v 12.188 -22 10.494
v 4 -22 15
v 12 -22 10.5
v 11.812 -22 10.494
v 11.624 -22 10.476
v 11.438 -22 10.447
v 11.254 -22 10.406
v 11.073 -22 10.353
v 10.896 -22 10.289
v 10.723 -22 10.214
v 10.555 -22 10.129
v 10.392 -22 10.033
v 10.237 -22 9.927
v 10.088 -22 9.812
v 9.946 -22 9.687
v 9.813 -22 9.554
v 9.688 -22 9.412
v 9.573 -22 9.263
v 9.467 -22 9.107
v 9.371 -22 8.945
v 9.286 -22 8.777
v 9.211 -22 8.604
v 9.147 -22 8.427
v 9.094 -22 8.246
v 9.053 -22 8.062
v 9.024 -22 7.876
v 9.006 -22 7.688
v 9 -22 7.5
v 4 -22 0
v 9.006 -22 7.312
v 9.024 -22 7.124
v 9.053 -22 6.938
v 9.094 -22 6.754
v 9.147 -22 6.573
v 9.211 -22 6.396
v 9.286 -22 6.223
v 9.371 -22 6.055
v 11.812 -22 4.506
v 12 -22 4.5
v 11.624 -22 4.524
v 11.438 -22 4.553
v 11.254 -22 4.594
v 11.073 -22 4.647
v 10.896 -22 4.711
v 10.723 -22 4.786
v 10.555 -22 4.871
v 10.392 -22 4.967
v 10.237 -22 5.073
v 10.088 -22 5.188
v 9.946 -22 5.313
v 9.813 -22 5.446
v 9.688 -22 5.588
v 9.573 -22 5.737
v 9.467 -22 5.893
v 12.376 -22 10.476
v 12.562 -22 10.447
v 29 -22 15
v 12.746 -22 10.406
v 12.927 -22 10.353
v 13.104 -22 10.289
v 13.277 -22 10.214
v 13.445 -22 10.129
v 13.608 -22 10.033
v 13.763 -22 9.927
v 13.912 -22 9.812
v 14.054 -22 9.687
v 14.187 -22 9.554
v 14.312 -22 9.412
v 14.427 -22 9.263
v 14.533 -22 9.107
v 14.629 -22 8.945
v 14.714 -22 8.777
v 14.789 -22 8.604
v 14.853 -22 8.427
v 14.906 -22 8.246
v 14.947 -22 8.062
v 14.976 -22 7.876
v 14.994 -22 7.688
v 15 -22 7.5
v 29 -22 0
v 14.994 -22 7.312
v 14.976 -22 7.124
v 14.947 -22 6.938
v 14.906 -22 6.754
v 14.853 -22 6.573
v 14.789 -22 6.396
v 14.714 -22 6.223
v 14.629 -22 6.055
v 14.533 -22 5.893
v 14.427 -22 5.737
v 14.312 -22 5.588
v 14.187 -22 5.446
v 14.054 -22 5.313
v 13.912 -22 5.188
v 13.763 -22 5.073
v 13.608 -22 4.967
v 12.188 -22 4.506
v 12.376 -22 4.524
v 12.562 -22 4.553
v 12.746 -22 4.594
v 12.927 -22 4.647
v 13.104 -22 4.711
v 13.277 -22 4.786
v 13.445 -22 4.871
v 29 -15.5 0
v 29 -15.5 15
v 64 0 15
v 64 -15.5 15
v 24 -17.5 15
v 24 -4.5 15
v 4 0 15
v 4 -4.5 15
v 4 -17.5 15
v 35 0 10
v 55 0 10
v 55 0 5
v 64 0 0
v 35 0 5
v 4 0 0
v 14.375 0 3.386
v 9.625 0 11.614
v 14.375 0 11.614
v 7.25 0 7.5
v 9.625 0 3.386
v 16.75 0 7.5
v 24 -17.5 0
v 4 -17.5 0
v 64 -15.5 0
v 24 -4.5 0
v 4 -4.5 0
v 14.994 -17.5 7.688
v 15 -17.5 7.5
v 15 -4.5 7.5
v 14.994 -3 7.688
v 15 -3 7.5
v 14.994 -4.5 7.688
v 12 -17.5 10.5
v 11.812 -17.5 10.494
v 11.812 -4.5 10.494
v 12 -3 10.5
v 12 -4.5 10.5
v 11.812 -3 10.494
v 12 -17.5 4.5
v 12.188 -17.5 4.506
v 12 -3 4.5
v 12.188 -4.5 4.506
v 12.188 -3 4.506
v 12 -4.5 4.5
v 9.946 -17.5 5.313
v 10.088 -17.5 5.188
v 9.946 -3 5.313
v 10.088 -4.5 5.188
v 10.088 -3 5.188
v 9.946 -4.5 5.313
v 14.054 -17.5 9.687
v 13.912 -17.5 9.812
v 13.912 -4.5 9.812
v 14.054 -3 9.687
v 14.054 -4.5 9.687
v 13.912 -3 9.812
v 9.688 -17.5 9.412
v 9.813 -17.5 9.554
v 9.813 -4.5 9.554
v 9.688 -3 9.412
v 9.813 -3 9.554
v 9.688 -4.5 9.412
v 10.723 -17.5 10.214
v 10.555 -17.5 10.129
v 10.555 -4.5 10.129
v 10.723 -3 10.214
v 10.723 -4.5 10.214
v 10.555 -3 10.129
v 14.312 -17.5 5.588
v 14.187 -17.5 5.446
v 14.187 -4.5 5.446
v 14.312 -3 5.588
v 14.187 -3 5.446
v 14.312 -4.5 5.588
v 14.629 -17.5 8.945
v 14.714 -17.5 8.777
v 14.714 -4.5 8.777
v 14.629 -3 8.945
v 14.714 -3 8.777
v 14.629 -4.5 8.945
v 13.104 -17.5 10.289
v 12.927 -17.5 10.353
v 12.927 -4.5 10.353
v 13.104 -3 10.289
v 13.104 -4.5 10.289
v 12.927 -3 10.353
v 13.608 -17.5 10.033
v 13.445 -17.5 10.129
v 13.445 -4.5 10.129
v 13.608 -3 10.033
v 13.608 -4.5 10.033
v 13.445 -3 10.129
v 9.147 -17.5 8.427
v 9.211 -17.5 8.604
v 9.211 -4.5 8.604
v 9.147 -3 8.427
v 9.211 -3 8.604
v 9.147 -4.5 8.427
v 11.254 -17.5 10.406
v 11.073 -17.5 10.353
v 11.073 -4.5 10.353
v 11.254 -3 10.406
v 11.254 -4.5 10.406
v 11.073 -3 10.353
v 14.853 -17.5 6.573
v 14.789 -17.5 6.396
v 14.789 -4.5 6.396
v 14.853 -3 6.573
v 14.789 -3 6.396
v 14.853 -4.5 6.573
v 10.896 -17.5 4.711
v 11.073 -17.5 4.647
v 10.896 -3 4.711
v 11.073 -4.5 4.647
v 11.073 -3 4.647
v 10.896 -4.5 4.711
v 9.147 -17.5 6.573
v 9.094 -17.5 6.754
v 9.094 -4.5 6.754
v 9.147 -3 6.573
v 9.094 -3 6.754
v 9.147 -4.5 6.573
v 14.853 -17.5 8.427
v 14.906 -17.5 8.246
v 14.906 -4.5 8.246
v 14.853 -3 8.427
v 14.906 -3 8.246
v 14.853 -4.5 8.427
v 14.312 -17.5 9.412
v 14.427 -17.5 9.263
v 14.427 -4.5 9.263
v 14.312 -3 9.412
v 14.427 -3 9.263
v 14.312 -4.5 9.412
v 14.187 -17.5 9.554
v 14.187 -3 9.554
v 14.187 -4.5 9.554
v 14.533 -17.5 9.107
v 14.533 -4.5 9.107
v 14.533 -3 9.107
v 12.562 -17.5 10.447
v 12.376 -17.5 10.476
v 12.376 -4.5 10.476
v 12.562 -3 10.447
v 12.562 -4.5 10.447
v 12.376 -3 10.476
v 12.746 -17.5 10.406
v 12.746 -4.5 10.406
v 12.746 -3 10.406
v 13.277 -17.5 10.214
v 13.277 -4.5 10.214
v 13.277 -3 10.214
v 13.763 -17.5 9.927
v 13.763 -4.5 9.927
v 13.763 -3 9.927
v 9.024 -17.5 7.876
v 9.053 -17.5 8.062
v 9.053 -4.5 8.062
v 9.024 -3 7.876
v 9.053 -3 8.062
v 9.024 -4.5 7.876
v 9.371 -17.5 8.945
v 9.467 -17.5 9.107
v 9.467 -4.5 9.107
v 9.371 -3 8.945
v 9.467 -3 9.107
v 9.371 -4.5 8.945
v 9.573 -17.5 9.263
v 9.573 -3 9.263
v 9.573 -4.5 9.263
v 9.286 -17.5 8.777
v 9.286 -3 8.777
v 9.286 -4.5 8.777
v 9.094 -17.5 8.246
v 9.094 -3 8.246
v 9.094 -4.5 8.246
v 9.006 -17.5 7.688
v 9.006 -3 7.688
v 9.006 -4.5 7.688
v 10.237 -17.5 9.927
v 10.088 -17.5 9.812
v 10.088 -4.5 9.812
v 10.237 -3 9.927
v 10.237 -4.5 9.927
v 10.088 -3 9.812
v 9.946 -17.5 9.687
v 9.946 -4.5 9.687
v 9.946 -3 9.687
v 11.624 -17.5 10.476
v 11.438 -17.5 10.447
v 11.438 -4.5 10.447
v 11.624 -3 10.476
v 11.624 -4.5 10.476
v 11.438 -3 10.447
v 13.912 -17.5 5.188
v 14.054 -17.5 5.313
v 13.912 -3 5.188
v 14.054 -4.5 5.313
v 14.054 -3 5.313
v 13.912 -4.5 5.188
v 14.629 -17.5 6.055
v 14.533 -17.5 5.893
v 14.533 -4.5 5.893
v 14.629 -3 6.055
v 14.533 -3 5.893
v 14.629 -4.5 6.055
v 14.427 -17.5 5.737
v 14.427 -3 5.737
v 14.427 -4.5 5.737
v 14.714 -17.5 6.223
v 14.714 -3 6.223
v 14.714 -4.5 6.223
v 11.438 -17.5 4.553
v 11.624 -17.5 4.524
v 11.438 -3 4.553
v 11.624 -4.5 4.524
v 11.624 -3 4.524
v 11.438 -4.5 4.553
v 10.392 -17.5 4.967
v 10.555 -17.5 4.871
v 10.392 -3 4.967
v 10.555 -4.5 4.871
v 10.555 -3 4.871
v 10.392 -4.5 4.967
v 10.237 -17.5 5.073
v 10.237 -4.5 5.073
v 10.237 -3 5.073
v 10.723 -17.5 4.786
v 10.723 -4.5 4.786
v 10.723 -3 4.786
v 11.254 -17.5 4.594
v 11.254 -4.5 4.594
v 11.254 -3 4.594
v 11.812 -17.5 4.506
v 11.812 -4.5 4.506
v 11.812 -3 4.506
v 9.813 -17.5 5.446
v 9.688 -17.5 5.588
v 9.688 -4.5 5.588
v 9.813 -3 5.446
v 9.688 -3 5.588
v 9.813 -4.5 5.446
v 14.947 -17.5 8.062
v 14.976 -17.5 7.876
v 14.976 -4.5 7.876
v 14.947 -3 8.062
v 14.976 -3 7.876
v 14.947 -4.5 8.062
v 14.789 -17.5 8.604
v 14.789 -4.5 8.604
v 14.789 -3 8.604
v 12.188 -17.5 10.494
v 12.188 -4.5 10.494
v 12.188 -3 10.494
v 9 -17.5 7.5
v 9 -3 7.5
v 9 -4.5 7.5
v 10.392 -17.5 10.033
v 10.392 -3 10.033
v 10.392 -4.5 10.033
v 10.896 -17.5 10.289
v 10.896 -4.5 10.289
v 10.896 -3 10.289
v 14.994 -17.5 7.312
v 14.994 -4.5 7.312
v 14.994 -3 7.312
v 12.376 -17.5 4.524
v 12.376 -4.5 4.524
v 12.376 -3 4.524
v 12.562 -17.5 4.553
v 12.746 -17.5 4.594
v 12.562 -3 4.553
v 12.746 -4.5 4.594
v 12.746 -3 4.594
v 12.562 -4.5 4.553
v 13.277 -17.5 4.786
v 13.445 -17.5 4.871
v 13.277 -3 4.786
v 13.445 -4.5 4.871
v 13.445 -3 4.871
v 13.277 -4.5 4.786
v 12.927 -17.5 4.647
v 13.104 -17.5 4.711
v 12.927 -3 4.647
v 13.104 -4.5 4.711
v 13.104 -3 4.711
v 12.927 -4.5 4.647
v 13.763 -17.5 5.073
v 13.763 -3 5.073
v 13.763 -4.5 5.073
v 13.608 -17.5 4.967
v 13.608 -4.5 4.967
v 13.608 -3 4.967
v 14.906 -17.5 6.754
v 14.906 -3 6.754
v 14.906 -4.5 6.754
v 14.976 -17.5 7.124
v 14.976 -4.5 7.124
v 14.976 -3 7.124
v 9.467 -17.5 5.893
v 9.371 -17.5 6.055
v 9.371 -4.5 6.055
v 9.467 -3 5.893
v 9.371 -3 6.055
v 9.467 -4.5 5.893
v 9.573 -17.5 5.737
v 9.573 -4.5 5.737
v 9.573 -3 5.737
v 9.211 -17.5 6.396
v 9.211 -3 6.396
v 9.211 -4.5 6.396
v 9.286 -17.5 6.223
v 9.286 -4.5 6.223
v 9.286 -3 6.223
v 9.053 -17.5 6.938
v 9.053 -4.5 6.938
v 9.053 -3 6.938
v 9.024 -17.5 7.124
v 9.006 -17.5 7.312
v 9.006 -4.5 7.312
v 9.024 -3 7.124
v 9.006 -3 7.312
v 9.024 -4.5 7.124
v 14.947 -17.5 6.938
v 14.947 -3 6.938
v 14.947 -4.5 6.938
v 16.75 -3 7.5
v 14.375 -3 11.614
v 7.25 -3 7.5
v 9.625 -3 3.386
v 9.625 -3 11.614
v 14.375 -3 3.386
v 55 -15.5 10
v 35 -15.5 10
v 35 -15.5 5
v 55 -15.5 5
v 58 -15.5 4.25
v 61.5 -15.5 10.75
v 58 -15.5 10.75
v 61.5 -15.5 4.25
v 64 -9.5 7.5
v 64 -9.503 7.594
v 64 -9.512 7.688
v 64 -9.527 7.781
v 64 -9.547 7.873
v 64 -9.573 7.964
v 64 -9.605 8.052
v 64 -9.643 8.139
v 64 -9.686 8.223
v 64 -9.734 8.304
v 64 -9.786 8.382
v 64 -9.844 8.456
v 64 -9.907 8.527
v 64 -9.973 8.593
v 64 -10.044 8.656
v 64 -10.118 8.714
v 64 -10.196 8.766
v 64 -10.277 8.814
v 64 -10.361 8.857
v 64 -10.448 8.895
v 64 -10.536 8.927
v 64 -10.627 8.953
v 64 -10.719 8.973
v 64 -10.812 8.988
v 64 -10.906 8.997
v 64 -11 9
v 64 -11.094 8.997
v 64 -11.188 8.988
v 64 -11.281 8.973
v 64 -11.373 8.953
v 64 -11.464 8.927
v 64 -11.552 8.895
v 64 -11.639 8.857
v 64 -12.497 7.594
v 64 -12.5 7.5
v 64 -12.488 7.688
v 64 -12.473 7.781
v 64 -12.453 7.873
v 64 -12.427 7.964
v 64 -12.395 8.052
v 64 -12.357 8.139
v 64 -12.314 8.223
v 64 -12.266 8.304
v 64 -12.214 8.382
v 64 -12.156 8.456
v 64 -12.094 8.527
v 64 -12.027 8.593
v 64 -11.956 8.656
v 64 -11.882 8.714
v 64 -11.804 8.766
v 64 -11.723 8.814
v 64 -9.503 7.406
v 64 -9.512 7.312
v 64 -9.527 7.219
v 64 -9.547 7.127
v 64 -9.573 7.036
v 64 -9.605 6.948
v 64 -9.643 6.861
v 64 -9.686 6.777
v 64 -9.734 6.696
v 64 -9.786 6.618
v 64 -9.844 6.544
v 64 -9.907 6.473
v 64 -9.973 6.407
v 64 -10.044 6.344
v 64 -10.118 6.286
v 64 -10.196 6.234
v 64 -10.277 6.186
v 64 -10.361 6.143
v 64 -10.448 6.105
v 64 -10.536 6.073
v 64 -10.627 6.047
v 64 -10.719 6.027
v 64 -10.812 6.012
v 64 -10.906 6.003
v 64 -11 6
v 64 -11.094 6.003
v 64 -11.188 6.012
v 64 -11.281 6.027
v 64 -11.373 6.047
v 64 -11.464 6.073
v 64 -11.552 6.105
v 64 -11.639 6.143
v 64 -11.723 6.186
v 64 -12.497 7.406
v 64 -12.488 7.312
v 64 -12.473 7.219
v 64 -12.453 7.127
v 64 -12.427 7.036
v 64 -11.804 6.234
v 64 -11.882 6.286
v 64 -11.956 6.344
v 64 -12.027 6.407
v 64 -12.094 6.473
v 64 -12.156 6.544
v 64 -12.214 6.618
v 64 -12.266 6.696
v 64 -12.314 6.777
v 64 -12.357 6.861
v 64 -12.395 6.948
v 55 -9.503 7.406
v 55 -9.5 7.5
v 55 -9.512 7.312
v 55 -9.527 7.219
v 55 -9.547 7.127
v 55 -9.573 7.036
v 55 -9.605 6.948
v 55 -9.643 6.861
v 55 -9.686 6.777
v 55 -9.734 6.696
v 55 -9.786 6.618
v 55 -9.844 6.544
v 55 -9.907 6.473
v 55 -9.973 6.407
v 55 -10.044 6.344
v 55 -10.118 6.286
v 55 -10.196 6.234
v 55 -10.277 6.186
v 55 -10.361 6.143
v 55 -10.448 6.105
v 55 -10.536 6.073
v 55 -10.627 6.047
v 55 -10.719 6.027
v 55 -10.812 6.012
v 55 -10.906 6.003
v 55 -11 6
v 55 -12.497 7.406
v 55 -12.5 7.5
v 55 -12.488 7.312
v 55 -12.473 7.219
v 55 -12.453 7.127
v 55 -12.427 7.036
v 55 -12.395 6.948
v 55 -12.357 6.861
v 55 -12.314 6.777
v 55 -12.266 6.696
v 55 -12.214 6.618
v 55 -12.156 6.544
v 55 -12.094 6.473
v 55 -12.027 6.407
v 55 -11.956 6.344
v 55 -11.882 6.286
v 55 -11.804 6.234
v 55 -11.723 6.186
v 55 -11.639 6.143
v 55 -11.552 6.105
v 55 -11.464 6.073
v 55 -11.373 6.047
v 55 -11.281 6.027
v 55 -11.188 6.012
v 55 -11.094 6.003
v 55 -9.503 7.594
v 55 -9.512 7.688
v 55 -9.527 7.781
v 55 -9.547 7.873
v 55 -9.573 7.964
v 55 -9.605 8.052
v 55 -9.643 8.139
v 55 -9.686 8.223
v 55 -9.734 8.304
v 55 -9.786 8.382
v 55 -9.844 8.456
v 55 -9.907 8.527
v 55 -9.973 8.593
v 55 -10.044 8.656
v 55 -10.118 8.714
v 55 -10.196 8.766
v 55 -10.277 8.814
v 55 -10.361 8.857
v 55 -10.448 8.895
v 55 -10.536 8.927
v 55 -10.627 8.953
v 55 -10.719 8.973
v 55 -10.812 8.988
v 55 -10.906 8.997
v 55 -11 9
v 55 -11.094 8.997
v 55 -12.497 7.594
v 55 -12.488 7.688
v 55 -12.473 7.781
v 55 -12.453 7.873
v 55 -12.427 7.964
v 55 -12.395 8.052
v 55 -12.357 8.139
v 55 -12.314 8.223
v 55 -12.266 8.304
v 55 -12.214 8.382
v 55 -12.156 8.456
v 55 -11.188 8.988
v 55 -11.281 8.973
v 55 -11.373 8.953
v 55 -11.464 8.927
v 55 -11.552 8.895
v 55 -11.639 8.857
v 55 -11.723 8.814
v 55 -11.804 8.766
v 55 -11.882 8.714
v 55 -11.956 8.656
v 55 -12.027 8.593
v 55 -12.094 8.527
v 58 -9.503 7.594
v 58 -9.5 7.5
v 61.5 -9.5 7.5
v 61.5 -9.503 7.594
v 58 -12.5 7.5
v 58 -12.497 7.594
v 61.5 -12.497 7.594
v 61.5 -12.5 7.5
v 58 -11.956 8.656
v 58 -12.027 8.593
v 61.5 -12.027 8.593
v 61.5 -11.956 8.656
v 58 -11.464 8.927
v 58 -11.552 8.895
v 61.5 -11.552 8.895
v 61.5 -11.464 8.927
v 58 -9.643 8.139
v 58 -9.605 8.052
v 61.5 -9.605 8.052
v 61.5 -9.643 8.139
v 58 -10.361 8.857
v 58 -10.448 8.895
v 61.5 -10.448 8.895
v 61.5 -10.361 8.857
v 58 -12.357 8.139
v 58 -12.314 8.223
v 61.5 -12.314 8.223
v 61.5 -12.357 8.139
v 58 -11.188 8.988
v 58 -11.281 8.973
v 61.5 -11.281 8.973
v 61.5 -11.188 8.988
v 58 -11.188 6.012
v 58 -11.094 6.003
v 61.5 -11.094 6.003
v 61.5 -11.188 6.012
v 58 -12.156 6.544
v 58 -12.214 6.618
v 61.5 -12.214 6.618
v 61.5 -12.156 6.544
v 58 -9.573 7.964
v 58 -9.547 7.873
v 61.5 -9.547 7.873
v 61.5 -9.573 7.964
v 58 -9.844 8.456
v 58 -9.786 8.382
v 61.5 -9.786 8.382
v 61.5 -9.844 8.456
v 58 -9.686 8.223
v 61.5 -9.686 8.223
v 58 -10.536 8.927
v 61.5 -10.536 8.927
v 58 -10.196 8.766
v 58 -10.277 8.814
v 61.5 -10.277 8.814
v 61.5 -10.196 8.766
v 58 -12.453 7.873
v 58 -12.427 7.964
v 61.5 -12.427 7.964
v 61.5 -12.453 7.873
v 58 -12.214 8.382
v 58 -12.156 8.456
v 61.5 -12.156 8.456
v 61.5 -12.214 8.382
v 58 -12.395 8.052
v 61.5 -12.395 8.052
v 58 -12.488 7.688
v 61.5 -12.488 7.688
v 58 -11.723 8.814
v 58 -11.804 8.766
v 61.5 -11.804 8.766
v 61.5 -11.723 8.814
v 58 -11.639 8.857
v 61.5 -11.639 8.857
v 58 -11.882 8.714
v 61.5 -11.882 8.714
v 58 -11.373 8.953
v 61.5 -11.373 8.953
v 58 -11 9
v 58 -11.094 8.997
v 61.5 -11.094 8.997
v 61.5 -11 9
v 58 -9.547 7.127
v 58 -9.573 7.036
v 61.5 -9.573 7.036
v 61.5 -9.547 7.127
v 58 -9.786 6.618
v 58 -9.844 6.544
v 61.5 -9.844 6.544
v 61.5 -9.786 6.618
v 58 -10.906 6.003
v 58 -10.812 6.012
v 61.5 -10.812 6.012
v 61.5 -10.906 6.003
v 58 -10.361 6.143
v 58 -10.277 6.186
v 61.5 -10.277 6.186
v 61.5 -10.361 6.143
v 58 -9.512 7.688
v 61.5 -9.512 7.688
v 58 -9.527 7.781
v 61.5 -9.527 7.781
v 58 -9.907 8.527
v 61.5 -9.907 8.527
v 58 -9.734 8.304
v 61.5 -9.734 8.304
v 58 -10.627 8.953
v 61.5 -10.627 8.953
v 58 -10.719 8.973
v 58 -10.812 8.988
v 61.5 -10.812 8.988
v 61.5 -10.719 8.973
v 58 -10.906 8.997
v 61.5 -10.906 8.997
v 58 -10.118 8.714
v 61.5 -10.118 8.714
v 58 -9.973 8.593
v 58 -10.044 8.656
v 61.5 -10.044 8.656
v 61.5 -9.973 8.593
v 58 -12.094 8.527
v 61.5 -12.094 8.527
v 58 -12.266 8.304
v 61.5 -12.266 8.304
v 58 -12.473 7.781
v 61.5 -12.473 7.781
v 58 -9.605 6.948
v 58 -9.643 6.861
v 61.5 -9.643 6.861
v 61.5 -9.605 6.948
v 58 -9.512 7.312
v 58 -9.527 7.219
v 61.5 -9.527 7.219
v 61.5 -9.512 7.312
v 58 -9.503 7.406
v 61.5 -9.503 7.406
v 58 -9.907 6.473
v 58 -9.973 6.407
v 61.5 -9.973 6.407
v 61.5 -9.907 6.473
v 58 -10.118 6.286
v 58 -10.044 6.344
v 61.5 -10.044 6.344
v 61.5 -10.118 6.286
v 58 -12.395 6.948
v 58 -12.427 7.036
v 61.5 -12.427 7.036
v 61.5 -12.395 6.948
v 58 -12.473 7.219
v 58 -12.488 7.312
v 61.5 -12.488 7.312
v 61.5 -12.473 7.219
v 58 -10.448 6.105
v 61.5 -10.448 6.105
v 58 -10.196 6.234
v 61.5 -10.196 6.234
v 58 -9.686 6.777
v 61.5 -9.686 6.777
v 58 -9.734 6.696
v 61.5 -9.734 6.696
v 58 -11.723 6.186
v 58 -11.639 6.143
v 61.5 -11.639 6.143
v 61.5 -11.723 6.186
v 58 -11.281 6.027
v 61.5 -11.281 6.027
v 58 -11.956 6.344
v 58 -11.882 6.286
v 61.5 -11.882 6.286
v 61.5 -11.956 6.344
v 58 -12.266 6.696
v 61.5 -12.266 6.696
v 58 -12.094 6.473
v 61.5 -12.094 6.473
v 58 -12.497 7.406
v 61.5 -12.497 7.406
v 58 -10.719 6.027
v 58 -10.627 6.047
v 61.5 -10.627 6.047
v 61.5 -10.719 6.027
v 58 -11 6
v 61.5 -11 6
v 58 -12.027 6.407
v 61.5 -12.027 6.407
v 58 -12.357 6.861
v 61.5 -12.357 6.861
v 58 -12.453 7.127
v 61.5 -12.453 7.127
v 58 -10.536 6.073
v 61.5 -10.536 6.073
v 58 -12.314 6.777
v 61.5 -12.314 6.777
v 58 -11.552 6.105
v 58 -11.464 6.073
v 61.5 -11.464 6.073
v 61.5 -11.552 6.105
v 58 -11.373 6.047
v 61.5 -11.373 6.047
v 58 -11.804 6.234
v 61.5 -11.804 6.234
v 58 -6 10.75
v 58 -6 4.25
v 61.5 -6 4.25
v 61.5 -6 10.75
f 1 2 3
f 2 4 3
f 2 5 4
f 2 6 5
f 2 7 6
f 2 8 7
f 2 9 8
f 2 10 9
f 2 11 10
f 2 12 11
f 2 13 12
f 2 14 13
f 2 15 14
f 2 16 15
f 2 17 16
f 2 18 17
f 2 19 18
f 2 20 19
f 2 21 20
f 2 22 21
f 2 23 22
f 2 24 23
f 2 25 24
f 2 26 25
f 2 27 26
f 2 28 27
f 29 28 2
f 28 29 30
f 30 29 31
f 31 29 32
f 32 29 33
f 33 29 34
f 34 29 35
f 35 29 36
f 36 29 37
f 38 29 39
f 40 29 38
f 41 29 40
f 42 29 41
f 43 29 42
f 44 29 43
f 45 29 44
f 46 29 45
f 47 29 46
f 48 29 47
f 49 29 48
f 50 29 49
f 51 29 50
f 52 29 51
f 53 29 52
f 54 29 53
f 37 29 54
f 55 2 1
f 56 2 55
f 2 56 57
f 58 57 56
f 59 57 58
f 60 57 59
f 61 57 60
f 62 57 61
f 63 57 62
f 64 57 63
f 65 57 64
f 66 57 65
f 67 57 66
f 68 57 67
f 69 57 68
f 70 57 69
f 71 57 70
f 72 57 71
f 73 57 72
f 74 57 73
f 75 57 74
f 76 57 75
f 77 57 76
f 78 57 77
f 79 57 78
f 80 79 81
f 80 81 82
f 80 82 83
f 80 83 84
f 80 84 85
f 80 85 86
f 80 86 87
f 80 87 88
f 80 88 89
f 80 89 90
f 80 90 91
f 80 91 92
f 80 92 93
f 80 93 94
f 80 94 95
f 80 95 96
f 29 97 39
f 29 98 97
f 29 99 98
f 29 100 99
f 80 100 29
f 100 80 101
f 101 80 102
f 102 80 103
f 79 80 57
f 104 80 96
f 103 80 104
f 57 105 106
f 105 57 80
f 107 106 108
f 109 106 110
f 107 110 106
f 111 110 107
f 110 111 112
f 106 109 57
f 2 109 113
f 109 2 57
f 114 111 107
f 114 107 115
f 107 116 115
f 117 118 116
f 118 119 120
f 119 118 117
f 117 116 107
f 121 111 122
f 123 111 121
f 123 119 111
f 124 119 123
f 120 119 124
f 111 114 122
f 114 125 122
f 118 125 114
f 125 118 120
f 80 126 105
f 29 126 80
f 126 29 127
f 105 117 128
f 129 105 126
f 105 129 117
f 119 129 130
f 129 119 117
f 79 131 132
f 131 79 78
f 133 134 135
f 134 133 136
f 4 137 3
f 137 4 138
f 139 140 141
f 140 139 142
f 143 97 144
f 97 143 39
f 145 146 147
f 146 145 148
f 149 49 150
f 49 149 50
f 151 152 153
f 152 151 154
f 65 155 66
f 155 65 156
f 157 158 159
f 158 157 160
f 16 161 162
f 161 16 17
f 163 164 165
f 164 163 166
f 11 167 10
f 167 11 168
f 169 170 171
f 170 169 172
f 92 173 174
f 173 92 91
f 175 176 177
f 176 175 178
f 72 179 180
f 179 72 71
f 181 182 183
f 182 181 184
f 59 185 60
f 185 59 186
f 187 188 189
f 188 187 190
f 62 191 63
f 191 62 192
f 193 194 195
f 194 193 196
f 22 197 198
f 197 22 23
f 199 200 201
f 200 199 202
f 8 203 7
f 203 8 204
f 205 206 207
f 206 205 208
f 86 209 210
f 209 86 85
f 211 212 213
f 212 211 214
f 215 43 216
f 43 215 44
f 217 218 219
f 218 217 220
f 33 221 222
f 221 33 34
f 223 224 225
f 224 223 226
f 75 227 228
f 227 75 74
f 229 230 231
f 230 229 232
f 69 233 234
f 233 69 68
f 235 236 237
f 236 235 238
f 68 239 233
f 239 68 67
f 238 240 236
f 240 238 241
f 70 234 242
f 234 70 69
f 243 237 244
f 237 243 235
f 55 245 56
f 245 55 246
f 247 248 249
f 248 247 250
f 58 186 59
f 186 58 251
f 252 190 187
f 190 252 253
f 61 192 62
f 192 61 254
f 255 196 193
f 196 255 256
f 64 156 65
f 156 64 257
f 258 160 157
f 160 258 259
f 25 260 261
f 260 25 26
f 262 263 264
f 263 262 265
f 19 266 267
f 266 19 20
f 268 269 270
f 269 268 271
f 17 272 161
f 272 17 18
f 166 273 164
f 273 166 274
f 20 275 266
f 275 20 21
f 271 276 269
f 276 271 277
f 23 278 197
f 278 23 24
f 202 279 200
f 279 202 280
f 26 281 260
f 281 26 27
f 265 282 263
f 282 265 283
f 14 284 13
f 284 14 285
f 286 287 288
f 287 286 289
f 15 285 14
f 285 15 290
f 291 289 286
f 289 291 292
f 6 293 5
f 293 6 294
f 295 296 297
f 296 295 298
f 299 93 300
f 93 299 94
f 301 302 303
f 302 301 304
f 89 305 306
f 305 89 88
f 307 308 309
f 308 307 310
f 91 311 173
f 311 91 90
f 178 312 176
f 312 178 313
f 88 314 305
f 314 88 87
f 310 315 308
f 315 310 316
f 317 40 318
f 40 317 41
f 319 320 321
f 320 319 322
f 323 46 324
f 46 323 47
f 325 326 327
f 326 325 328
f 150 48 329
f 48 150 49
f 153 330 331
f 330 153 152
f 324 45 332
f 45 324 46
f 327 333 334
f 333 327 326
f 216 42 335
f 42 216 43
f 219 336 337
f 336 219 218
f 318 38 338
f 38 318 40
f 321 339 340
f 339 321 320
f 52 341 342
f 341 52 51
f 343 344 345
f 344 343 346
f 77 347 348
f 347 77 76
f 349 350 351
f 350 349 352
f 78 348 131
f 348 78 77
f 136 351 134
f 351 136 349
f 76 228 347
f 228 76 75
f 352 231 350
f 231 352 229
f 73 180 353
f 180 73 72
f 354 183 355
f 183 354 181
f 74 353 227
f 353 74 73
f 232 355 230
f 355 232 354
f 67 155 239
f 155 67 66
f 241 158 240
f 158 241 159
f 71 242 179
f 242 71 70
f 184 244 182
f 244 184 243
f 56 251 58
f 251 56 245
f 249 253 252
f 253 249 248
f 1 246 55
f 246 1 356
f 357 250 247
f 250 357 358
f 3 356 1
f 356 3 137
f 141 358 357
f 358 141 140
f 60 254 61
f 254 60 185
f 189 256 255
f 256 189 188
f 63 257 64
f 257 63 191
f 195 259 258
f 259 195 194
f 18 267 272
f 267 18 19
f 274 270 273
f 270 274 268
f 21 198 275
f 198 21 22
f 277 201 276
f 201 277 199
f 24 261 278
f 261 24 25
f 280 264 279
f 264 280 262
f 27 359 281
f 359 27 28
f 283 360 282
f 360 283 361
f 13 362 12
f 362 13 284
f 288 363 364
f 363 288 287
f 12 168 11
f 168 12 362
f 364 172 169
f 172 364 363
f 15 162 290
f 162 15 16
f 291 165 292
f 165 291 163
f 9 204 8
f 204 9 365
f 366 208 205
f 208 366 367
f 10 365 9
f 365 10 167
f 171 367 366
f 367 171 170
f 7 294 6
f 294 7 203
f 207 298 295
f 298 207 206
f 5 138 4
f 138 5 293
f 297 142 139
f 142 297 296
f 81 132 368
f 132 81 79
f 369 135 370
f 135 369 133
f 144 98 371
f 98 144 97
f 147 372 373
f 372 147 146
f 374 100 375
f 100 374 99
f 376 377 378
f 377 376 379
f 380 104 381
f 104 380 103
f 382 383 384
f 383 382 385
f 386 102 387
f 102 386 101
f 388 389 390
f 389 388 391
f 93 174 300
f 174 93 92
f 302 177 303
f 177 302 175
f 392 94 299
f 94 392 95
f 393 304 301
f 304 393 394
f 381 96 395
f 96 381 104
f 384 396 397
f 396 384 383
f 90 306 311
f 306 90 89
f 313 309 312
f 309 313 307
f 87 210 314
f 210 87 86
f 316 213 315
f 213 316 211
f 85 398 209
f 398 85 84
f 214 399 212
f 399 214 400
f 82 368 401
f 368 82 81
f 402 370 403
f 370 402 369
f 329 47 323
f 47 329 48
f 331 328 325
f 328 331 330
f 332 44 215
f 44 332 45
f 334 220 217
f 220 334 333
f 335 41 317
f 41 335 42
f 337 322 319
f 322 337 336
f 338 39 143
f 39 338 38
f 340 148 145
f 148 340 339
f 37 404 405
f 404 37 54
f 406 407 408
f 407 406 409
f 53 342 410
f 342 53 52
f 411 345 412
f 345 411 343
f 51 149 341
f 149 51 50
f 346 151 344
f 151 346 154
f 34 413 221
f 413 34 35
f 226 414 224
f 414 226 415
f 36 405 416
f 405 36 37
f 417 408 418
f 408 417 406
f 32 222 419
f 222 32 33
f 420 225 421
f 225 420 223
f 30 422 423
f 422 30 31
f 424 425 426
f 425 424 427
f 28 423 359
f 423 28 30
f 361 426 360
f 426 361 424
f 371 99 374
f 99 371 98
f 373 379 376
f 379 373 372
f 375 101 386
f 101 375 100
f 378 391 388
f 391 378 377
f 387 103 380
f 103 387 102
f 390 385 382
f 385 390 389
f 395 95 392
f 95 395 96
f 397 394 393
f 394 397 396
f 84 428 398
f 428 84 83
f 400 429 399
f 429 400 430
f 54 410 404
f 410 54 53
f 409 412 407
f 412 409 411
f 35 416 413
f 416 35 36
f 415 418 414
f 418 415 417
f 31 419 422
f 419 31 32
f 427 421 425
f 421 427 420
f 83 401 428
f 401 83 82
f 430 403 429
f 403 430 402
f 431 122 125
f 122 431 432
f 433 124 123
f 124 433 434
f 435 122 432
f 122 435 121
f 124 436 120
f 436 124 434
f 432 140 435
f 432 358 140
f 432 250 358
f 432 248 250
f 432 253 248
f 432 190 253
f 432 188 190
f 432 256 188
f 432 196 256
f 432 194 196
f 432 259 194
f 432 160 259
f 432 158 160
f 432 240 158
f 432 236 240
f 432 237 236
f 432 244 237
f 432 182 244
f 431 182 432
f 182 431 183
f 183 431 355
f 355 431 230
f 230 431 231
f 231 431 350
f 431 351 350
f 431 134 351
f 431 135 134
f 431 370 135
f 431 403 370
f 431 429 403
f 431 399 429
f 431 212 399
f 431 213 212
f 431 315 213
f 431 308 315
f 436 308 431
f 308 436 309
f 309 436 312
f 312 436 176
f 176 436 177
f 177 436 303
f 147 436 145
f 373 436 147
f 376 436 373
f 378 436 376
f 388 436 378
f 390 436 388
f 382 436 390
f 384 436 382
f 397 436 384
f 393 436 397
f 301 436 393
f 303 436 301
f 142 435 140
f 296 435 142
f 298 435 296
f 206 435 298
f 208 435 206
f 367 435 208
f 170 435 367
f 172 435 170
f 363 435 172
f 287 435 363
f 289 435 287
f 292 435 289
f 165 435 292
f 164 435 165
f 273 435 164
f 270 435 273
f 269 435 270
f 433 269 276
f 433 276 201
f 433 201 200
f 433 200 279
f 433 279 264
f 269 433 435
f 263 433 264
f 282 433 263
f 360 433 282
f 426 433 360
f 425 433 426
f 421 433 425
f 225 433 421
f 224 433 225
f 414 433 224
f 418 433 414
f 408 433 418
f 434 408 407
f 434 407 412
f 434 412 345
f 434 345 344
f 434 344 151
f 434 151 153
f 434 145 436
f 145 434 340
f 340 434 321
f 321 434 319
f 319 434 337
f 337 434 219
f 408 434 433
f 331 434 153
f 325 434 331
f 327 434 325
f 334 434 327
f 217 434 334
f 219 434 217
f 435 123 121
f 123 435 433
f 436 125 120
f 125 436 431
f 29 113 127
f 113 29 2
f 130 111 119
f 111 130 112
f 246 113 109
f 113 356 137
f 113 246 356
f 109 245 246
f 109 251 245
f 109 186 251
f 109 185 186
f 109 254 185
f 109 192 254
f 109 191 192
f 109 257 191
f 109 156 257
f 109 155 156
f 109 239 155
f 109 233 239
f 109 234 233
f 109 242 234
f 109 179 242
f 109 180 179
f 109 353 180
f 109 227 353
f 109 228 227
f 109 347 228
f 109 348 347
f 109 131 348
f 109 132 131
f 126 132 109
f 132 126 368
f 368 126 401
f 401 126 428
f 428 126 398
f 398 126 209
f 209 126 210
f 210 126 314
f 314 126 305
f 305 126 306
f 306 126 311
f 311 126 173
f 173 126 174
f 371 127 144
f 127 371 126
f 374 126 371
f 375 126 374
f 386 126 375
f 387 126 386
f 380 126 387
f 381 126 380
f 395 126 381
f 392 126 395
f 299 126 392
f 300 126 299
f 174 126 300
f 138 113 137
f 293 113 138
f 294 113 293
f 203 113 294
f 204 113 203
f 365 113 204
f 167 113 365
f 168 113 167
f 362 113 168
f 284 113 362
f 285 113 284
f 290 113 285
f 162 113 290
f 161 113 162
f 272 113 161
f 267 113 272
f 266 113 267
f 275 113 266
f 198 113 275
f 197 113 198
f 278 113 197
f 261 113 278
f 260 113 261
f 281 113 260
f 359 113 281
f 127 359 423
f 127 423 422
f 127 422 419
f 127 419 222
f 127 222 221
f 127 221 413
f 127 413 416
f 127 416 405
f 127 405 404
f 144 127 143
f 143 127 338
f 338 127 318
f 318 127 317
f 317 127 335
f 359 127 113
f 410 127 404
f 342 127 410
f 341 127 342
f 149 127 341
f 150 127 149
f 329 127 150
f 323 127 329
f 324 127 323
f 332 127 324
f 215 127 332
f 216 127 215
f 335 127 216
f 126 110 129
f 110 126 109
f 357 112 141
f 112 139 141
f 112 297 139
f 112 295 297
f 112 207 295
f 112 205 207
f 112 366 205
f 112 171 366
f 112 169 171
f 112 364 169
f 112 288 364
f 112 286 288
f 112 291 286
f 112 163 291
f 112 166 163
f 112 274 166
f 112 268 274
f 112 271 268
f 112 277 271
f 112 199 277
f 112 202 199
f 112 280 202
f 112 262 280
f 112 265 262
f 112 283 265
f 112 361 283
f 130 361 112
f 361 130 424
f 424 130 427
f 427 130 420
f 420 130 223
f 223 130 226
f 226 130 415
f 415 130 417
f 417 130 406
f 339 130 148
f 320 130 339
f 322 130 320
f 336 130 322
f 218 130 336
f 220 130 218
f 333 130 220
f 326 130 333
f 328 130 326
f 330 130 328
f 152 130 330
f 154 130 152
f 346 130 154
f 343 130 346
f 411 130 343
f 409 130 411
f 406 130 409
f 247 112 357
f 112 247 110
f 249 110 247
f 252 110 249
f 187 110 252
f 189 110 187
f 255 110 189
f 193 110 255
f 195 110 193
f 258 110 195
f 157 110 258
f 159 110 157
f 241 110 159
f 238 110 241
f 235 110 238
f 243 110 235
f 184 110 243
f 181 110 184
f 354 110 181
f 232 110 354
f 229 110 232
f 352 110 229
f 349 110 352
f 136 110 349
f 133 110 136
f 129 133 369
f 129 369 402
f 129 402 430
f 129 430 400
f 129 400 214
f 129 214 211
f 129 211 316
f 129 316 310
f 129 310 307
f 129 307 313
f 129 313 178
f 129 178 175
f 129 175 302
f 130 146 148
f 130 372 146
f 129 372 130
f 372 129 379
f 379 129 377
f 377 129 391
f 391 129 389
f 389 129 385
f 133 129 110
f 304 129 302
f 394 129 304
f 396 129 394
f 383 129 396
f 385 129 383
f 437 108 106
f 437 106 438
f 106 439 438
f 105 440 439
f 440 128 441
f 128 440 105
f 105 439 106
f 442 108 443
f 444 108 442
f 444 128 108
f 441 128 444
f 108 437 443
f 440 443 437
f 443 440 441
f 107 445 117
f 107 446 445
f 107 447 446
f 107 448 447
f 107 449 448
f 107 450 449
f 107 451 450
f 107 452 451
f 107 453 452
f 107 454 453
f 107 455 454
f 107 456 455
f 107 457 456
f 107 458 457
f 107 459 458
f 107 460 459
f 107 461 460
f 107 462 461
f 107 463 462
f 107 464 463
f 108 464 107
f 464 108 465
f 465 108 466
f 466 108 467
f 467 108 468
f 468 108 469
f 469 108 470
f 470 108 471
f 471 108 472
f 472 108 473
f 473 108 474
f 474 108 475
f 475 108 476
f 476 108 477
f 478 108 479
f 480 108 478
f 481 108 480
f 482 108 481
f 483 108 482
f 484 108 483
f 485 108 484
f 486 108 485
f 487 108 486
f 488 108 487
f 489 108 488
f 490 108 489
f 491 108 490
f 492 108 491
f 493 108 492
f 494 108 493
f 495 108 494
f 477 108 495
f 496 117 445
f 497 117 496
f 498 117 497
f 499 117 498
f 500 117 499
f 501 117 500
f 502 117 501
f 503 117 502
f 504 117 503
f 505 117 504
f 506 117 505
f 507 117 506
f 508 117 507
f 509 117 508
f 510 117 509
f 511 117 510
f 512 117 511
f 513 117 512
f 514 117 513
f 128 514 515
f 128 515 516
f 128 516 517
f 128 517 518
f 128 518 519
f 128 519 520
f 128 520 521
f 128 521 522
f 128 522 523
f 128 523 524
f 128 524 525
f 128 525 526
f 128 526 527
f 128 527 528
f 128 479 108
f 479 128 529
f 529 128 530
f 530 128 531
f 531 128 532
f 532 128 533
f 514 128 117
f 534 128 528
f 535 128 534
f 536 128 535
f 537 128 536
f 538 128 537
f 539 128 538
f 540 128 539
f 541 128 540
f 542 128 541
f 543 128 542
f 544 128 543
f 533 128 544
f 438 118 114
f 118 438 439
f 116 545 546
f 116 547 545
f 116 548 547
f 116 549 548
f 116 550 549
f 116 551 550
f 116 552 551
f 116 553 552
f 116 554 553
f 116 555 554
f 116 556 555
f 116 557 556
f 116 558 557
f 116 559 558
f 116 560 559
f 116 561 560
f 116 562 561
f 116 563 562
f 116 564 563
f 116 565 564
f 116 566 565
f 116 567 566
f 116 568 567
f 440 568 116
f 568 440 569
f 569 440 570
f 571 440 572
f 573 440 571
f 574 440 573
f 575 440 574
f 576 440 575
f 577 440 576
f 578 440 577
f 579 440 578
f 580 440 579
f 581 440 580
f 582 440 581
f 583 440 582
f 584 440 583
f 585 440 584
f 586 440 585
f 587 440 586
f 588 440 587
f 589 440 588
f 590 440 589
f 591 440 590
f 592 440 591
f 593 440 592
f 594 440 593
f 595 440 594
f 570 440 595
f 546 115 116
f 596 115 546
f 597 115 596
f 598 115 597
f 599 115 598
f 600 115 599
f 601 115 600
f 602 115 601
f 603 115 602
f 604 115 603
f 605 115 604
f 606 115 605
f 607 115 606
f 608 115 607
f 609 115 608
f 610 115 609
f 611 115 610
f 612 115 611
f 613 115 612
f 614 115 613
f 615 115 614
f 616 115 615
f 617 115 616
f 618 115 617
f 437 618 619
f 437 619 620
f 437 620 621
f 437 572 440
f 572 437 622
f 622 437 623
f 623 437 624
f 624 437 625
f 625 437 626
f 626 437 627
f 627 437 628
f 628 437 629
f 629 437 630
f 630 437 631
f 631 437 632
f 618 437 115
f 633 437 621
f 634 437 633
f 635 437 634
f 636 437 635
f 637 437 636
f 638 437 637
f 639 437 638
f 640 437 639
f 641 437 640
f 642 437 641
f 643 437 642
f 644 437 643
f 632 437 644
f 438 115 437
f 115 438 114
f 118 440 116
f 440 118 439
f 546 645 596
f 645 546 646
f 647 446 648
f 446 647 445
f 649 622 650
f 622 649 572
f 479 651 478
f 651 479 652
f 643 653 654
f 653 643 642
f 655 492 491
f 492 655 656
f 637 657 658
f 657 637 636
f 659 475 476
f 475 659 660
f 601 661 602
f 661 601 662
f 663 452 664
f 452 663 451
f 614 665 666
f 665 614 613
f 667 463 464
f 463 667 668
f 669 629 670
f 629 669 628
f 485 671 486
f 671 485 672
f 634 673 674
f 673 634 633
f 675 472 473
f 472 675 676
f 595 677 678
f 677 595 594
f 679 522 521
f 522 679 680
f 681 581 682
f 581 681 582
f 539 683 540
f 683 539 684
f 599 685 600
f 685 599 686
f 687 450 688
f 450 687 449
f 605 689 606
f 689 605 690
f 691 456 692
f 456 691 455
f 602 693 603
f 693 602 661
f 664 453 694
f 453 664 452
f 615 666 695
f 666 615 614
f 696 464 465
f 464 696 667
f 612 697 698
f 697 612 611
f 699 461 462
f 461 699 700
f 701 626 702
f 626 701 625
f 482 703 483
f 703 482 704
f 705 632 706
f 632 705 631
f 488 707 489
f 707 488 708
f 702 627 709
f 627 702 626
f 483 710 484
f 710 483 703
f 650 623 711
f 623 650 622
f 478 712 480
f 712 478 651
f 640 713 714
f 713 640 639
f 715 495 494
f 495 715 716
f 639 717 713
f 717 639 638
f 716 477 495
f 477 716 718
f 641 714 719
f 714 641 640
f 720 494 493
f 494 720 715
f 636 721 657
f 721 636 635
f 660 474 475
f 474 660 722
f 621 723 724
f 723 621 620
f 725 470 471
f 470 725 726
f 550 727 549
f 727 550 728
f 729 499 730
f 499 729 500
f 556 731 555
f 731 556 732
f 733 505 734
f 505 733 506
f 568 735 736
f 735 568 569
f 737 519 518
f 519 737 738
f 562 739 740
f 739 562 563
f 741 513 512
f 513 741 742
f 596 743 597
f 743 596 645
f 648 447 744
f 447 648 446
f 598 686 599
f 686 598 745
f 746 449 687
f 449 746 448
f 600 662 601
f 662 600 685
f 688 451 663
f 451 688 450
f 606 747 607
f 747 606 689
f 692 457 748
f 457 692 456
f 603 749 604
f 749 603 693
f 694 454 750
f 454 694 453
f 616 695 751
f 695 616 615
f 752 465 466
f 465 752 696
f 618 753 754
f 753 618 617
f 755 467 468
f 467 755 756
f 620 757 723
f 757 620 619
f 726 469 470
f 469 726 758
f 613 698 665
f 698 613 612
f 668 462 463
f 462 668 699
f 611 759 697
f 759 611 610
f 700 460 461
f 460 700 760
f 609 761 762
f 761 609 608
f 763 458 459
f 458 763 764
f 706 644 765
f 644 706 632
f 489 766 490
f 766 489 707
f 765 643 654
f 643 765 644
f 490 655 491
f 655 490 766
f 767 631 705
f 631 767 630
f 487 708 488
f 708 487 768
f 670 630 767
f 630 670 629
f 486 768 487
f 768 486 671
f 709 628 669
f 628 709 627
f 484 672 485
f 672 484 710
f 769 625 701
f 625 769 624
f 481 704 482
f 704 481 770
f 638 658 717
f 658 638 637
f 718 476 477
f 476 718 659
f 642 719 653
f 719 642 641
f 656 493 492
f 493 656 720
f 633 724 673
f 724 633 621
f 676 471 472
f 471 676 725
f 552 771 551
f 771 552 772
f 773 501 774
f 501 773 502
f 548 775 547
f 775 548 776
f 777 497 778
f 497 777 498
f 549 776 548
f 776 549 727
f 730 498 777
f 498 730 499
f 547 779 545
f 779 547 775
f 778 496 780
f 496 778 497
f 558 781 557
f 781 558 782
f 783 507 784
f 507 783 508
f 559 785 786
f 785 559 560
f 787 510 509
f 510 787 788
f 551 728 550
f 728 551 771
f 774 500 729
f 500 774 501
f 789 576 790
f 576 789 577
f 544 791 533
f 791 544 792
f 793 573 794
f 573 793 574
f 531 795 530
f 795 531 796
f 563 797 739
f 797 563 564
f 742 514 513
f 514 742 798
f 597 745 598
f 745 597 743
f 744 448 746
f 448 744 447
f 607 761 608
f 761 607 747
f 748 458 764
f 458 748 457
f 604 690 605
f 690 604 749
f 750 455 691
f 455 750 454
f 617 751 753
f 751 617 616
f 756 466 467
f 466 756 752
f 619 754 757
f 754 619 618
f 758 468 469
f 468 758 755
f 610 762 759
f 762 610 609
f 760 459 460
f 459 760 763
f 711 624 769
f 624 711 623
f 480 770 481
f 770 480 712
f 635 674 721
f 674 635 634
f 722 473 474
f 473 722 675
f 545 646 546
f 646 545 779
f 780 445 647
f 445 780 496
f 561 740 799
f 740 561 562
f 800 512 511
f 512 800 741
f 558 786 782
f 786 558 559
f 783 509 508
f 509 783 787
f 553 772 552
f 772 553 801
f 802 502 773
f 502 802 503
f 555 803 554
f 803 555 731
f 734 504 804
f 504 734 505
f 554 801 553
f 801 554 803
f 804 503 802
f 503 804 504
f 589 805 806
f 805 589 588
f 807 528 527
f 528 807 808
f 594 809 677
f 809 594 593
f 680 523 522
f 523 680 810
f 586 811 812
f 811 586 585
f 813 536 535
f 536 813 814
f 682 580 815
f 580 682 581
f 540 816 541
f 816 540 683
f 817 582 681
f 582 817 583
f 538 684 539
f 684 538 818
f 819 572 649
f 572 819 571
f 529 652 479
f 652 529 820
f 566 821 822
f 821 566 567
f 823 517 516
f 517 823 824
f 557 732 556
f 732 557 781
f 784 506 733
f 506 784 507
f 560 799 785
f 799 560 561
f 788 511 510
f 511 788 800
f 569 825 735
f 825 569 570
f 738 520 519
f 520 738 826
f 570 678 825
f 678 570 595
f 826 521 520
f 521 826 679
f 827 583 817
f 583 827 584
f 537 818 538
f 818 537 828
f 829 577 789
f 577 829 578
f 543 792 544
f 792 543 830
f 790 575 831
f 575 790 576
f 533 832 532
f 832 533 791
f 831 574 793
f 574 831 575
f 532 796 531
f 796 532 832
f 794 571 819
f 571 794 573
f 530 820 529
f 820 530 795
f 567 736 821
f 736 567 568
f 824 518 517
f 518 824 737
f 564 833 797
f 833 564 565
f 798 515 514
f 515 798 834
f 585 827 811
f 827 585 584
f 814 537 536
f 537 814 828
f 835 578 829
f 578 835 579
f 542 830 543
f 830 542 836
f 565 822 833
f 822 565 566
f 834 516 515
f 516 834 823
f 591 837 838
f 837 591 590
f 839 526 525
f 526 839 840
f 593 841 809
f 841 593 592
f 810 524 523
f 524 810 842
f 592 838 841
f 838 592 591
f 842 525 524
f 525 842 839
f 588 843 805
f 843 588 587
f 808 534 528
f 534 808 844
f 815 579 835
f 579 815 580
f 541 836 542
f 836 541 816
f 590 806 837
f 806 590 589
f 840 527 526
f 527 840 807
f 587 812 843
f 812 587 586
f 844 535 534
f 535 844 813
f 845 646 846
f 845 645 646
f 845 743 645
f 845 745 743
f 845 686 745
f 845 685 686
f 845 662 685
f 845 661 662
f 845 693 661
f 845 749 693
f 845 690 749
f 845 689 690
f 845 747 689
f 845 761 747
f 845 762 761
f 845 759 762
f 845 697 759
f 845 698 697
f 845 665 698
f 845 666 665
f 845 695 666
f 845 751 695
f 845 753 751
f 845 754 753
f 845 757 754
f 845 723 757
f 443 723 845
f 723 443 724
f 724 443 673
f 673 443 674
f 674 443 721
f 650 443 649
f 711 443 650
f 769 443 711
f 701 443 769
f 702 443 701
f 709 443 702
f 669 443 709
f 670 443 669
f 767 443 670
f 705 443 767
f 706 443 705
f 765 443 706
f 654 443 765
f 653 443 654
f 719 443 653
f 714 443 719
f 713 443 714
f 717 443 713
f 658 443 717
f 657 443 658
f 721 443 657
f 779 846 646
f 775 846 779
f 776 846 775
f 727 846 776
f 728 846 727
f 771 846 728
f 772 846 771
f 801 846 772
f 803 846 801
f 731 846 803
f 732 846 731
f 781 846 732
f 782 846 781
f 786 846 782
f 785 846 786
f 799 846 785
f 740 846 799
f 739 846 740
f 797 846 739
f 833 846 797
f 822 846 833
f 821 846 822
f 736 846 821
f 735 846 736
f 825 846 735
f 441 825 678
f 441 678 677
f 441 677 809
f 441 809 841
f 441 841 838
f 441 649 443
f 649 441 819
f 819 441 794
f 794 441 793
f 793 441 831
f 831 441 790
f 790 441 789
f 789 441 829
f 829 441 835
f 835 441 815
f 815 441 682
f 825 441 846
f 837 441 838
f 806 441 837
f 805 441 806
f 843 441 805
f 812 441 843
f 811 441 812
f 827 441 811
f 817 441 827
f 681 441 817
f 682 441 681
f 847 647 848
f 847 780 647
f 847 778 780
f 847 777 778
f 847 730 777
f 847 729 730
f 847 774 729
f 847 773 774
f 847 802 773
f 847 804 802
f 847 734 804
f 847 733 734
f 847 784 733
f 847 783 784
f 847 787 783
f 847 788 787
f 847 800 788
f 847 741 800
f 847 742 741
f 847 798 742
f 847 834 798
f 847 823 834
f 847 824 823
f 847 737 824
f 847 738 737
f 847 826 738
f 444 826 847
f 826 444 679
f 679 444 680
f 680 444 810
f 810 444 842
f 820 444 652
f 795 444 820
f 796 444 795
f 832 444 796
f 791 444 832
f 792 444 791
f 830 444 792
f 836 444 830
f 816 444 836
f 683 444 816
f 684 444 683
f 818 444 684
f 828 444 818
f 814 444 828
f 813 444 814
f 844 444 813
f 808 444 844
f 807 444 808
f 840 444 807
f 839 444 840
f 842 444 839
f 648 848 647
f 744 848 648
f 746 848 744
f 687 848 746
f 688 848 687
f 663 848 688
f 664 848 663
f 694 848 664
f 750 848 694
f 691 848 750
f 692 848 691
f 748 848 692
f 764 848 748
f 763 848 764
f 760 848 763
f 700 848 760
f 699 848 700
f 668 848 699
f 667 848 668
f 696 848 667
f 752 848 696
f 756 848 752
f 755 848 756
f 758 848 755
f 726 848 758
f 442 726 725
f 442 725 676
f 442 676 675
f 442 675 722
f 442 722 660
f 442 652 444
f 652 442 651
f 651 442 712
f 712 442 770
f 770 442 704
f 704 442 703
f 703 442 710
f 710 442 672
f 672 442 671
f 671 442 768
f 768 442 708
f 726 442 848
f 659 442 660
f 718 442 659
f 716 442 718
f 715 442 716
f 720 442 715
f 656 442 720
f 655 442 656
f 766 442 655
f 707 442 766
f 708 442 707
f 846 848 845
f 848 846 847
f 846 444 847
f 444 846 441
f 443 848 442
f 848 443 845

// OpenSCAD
bearing_screw_dia = 6; //5mm screw, oversized
bearing_width = 15;
bearing_length = 29;
bearing_height = 22;
bearing_opening = 13;
bearing_insert = 25;
slide_length = 35;
slit_dia = 5;
slit_offset = 35;
slit_length=20;
nut_thick = 3.5;
nut_width = 6.5;
nut_insert = 16;
nut_offset = 58;

slide_width = 9;


rotate([90,0,0]) {
  difference(){
    difference() {
      cube(size=[bearing_length,bearing_width,bearing_height]);
      translate([12,bearing_width/2,-1]){
        cylinder(h=24,d=bearing_screw_dia,center=false,$fn=100);
      }
      translate([12,bearing_width/2,-1]){   
       cylinder(h=4,d=9.5,$fn=6); 
      }

      translate([-1,-1,-1]){
        cube(size=[5,bearing_height,25]);
      }
    }
    translate([-1,-1,4.5])
      cube(size=[bearing_insert,bearing_height,bearing_opening]);
  } 
    
  difference(){

    translate([bearing_length,0,0])
      cube(size=[slide_length,bearing_width,slide_width + ((bearing_height-slide_width)/2)]);

    translate([slit_offset,(bearing_width/2)-(slit_dia/2),0])
      cube(size=[slit_length,slit_dia,22]);

    translate([30+25,bearing_width/2,11]) rotate([0,90,0])
      cylinder(h=10,d=3,$fn=100,center=false);
    
    //nut opening
    translate([nut_offset,(bearing_width/2)-(nut_width/2),6])
      cube(size=[nut_thick,nut_width,nut_insert]);
  }  

}
